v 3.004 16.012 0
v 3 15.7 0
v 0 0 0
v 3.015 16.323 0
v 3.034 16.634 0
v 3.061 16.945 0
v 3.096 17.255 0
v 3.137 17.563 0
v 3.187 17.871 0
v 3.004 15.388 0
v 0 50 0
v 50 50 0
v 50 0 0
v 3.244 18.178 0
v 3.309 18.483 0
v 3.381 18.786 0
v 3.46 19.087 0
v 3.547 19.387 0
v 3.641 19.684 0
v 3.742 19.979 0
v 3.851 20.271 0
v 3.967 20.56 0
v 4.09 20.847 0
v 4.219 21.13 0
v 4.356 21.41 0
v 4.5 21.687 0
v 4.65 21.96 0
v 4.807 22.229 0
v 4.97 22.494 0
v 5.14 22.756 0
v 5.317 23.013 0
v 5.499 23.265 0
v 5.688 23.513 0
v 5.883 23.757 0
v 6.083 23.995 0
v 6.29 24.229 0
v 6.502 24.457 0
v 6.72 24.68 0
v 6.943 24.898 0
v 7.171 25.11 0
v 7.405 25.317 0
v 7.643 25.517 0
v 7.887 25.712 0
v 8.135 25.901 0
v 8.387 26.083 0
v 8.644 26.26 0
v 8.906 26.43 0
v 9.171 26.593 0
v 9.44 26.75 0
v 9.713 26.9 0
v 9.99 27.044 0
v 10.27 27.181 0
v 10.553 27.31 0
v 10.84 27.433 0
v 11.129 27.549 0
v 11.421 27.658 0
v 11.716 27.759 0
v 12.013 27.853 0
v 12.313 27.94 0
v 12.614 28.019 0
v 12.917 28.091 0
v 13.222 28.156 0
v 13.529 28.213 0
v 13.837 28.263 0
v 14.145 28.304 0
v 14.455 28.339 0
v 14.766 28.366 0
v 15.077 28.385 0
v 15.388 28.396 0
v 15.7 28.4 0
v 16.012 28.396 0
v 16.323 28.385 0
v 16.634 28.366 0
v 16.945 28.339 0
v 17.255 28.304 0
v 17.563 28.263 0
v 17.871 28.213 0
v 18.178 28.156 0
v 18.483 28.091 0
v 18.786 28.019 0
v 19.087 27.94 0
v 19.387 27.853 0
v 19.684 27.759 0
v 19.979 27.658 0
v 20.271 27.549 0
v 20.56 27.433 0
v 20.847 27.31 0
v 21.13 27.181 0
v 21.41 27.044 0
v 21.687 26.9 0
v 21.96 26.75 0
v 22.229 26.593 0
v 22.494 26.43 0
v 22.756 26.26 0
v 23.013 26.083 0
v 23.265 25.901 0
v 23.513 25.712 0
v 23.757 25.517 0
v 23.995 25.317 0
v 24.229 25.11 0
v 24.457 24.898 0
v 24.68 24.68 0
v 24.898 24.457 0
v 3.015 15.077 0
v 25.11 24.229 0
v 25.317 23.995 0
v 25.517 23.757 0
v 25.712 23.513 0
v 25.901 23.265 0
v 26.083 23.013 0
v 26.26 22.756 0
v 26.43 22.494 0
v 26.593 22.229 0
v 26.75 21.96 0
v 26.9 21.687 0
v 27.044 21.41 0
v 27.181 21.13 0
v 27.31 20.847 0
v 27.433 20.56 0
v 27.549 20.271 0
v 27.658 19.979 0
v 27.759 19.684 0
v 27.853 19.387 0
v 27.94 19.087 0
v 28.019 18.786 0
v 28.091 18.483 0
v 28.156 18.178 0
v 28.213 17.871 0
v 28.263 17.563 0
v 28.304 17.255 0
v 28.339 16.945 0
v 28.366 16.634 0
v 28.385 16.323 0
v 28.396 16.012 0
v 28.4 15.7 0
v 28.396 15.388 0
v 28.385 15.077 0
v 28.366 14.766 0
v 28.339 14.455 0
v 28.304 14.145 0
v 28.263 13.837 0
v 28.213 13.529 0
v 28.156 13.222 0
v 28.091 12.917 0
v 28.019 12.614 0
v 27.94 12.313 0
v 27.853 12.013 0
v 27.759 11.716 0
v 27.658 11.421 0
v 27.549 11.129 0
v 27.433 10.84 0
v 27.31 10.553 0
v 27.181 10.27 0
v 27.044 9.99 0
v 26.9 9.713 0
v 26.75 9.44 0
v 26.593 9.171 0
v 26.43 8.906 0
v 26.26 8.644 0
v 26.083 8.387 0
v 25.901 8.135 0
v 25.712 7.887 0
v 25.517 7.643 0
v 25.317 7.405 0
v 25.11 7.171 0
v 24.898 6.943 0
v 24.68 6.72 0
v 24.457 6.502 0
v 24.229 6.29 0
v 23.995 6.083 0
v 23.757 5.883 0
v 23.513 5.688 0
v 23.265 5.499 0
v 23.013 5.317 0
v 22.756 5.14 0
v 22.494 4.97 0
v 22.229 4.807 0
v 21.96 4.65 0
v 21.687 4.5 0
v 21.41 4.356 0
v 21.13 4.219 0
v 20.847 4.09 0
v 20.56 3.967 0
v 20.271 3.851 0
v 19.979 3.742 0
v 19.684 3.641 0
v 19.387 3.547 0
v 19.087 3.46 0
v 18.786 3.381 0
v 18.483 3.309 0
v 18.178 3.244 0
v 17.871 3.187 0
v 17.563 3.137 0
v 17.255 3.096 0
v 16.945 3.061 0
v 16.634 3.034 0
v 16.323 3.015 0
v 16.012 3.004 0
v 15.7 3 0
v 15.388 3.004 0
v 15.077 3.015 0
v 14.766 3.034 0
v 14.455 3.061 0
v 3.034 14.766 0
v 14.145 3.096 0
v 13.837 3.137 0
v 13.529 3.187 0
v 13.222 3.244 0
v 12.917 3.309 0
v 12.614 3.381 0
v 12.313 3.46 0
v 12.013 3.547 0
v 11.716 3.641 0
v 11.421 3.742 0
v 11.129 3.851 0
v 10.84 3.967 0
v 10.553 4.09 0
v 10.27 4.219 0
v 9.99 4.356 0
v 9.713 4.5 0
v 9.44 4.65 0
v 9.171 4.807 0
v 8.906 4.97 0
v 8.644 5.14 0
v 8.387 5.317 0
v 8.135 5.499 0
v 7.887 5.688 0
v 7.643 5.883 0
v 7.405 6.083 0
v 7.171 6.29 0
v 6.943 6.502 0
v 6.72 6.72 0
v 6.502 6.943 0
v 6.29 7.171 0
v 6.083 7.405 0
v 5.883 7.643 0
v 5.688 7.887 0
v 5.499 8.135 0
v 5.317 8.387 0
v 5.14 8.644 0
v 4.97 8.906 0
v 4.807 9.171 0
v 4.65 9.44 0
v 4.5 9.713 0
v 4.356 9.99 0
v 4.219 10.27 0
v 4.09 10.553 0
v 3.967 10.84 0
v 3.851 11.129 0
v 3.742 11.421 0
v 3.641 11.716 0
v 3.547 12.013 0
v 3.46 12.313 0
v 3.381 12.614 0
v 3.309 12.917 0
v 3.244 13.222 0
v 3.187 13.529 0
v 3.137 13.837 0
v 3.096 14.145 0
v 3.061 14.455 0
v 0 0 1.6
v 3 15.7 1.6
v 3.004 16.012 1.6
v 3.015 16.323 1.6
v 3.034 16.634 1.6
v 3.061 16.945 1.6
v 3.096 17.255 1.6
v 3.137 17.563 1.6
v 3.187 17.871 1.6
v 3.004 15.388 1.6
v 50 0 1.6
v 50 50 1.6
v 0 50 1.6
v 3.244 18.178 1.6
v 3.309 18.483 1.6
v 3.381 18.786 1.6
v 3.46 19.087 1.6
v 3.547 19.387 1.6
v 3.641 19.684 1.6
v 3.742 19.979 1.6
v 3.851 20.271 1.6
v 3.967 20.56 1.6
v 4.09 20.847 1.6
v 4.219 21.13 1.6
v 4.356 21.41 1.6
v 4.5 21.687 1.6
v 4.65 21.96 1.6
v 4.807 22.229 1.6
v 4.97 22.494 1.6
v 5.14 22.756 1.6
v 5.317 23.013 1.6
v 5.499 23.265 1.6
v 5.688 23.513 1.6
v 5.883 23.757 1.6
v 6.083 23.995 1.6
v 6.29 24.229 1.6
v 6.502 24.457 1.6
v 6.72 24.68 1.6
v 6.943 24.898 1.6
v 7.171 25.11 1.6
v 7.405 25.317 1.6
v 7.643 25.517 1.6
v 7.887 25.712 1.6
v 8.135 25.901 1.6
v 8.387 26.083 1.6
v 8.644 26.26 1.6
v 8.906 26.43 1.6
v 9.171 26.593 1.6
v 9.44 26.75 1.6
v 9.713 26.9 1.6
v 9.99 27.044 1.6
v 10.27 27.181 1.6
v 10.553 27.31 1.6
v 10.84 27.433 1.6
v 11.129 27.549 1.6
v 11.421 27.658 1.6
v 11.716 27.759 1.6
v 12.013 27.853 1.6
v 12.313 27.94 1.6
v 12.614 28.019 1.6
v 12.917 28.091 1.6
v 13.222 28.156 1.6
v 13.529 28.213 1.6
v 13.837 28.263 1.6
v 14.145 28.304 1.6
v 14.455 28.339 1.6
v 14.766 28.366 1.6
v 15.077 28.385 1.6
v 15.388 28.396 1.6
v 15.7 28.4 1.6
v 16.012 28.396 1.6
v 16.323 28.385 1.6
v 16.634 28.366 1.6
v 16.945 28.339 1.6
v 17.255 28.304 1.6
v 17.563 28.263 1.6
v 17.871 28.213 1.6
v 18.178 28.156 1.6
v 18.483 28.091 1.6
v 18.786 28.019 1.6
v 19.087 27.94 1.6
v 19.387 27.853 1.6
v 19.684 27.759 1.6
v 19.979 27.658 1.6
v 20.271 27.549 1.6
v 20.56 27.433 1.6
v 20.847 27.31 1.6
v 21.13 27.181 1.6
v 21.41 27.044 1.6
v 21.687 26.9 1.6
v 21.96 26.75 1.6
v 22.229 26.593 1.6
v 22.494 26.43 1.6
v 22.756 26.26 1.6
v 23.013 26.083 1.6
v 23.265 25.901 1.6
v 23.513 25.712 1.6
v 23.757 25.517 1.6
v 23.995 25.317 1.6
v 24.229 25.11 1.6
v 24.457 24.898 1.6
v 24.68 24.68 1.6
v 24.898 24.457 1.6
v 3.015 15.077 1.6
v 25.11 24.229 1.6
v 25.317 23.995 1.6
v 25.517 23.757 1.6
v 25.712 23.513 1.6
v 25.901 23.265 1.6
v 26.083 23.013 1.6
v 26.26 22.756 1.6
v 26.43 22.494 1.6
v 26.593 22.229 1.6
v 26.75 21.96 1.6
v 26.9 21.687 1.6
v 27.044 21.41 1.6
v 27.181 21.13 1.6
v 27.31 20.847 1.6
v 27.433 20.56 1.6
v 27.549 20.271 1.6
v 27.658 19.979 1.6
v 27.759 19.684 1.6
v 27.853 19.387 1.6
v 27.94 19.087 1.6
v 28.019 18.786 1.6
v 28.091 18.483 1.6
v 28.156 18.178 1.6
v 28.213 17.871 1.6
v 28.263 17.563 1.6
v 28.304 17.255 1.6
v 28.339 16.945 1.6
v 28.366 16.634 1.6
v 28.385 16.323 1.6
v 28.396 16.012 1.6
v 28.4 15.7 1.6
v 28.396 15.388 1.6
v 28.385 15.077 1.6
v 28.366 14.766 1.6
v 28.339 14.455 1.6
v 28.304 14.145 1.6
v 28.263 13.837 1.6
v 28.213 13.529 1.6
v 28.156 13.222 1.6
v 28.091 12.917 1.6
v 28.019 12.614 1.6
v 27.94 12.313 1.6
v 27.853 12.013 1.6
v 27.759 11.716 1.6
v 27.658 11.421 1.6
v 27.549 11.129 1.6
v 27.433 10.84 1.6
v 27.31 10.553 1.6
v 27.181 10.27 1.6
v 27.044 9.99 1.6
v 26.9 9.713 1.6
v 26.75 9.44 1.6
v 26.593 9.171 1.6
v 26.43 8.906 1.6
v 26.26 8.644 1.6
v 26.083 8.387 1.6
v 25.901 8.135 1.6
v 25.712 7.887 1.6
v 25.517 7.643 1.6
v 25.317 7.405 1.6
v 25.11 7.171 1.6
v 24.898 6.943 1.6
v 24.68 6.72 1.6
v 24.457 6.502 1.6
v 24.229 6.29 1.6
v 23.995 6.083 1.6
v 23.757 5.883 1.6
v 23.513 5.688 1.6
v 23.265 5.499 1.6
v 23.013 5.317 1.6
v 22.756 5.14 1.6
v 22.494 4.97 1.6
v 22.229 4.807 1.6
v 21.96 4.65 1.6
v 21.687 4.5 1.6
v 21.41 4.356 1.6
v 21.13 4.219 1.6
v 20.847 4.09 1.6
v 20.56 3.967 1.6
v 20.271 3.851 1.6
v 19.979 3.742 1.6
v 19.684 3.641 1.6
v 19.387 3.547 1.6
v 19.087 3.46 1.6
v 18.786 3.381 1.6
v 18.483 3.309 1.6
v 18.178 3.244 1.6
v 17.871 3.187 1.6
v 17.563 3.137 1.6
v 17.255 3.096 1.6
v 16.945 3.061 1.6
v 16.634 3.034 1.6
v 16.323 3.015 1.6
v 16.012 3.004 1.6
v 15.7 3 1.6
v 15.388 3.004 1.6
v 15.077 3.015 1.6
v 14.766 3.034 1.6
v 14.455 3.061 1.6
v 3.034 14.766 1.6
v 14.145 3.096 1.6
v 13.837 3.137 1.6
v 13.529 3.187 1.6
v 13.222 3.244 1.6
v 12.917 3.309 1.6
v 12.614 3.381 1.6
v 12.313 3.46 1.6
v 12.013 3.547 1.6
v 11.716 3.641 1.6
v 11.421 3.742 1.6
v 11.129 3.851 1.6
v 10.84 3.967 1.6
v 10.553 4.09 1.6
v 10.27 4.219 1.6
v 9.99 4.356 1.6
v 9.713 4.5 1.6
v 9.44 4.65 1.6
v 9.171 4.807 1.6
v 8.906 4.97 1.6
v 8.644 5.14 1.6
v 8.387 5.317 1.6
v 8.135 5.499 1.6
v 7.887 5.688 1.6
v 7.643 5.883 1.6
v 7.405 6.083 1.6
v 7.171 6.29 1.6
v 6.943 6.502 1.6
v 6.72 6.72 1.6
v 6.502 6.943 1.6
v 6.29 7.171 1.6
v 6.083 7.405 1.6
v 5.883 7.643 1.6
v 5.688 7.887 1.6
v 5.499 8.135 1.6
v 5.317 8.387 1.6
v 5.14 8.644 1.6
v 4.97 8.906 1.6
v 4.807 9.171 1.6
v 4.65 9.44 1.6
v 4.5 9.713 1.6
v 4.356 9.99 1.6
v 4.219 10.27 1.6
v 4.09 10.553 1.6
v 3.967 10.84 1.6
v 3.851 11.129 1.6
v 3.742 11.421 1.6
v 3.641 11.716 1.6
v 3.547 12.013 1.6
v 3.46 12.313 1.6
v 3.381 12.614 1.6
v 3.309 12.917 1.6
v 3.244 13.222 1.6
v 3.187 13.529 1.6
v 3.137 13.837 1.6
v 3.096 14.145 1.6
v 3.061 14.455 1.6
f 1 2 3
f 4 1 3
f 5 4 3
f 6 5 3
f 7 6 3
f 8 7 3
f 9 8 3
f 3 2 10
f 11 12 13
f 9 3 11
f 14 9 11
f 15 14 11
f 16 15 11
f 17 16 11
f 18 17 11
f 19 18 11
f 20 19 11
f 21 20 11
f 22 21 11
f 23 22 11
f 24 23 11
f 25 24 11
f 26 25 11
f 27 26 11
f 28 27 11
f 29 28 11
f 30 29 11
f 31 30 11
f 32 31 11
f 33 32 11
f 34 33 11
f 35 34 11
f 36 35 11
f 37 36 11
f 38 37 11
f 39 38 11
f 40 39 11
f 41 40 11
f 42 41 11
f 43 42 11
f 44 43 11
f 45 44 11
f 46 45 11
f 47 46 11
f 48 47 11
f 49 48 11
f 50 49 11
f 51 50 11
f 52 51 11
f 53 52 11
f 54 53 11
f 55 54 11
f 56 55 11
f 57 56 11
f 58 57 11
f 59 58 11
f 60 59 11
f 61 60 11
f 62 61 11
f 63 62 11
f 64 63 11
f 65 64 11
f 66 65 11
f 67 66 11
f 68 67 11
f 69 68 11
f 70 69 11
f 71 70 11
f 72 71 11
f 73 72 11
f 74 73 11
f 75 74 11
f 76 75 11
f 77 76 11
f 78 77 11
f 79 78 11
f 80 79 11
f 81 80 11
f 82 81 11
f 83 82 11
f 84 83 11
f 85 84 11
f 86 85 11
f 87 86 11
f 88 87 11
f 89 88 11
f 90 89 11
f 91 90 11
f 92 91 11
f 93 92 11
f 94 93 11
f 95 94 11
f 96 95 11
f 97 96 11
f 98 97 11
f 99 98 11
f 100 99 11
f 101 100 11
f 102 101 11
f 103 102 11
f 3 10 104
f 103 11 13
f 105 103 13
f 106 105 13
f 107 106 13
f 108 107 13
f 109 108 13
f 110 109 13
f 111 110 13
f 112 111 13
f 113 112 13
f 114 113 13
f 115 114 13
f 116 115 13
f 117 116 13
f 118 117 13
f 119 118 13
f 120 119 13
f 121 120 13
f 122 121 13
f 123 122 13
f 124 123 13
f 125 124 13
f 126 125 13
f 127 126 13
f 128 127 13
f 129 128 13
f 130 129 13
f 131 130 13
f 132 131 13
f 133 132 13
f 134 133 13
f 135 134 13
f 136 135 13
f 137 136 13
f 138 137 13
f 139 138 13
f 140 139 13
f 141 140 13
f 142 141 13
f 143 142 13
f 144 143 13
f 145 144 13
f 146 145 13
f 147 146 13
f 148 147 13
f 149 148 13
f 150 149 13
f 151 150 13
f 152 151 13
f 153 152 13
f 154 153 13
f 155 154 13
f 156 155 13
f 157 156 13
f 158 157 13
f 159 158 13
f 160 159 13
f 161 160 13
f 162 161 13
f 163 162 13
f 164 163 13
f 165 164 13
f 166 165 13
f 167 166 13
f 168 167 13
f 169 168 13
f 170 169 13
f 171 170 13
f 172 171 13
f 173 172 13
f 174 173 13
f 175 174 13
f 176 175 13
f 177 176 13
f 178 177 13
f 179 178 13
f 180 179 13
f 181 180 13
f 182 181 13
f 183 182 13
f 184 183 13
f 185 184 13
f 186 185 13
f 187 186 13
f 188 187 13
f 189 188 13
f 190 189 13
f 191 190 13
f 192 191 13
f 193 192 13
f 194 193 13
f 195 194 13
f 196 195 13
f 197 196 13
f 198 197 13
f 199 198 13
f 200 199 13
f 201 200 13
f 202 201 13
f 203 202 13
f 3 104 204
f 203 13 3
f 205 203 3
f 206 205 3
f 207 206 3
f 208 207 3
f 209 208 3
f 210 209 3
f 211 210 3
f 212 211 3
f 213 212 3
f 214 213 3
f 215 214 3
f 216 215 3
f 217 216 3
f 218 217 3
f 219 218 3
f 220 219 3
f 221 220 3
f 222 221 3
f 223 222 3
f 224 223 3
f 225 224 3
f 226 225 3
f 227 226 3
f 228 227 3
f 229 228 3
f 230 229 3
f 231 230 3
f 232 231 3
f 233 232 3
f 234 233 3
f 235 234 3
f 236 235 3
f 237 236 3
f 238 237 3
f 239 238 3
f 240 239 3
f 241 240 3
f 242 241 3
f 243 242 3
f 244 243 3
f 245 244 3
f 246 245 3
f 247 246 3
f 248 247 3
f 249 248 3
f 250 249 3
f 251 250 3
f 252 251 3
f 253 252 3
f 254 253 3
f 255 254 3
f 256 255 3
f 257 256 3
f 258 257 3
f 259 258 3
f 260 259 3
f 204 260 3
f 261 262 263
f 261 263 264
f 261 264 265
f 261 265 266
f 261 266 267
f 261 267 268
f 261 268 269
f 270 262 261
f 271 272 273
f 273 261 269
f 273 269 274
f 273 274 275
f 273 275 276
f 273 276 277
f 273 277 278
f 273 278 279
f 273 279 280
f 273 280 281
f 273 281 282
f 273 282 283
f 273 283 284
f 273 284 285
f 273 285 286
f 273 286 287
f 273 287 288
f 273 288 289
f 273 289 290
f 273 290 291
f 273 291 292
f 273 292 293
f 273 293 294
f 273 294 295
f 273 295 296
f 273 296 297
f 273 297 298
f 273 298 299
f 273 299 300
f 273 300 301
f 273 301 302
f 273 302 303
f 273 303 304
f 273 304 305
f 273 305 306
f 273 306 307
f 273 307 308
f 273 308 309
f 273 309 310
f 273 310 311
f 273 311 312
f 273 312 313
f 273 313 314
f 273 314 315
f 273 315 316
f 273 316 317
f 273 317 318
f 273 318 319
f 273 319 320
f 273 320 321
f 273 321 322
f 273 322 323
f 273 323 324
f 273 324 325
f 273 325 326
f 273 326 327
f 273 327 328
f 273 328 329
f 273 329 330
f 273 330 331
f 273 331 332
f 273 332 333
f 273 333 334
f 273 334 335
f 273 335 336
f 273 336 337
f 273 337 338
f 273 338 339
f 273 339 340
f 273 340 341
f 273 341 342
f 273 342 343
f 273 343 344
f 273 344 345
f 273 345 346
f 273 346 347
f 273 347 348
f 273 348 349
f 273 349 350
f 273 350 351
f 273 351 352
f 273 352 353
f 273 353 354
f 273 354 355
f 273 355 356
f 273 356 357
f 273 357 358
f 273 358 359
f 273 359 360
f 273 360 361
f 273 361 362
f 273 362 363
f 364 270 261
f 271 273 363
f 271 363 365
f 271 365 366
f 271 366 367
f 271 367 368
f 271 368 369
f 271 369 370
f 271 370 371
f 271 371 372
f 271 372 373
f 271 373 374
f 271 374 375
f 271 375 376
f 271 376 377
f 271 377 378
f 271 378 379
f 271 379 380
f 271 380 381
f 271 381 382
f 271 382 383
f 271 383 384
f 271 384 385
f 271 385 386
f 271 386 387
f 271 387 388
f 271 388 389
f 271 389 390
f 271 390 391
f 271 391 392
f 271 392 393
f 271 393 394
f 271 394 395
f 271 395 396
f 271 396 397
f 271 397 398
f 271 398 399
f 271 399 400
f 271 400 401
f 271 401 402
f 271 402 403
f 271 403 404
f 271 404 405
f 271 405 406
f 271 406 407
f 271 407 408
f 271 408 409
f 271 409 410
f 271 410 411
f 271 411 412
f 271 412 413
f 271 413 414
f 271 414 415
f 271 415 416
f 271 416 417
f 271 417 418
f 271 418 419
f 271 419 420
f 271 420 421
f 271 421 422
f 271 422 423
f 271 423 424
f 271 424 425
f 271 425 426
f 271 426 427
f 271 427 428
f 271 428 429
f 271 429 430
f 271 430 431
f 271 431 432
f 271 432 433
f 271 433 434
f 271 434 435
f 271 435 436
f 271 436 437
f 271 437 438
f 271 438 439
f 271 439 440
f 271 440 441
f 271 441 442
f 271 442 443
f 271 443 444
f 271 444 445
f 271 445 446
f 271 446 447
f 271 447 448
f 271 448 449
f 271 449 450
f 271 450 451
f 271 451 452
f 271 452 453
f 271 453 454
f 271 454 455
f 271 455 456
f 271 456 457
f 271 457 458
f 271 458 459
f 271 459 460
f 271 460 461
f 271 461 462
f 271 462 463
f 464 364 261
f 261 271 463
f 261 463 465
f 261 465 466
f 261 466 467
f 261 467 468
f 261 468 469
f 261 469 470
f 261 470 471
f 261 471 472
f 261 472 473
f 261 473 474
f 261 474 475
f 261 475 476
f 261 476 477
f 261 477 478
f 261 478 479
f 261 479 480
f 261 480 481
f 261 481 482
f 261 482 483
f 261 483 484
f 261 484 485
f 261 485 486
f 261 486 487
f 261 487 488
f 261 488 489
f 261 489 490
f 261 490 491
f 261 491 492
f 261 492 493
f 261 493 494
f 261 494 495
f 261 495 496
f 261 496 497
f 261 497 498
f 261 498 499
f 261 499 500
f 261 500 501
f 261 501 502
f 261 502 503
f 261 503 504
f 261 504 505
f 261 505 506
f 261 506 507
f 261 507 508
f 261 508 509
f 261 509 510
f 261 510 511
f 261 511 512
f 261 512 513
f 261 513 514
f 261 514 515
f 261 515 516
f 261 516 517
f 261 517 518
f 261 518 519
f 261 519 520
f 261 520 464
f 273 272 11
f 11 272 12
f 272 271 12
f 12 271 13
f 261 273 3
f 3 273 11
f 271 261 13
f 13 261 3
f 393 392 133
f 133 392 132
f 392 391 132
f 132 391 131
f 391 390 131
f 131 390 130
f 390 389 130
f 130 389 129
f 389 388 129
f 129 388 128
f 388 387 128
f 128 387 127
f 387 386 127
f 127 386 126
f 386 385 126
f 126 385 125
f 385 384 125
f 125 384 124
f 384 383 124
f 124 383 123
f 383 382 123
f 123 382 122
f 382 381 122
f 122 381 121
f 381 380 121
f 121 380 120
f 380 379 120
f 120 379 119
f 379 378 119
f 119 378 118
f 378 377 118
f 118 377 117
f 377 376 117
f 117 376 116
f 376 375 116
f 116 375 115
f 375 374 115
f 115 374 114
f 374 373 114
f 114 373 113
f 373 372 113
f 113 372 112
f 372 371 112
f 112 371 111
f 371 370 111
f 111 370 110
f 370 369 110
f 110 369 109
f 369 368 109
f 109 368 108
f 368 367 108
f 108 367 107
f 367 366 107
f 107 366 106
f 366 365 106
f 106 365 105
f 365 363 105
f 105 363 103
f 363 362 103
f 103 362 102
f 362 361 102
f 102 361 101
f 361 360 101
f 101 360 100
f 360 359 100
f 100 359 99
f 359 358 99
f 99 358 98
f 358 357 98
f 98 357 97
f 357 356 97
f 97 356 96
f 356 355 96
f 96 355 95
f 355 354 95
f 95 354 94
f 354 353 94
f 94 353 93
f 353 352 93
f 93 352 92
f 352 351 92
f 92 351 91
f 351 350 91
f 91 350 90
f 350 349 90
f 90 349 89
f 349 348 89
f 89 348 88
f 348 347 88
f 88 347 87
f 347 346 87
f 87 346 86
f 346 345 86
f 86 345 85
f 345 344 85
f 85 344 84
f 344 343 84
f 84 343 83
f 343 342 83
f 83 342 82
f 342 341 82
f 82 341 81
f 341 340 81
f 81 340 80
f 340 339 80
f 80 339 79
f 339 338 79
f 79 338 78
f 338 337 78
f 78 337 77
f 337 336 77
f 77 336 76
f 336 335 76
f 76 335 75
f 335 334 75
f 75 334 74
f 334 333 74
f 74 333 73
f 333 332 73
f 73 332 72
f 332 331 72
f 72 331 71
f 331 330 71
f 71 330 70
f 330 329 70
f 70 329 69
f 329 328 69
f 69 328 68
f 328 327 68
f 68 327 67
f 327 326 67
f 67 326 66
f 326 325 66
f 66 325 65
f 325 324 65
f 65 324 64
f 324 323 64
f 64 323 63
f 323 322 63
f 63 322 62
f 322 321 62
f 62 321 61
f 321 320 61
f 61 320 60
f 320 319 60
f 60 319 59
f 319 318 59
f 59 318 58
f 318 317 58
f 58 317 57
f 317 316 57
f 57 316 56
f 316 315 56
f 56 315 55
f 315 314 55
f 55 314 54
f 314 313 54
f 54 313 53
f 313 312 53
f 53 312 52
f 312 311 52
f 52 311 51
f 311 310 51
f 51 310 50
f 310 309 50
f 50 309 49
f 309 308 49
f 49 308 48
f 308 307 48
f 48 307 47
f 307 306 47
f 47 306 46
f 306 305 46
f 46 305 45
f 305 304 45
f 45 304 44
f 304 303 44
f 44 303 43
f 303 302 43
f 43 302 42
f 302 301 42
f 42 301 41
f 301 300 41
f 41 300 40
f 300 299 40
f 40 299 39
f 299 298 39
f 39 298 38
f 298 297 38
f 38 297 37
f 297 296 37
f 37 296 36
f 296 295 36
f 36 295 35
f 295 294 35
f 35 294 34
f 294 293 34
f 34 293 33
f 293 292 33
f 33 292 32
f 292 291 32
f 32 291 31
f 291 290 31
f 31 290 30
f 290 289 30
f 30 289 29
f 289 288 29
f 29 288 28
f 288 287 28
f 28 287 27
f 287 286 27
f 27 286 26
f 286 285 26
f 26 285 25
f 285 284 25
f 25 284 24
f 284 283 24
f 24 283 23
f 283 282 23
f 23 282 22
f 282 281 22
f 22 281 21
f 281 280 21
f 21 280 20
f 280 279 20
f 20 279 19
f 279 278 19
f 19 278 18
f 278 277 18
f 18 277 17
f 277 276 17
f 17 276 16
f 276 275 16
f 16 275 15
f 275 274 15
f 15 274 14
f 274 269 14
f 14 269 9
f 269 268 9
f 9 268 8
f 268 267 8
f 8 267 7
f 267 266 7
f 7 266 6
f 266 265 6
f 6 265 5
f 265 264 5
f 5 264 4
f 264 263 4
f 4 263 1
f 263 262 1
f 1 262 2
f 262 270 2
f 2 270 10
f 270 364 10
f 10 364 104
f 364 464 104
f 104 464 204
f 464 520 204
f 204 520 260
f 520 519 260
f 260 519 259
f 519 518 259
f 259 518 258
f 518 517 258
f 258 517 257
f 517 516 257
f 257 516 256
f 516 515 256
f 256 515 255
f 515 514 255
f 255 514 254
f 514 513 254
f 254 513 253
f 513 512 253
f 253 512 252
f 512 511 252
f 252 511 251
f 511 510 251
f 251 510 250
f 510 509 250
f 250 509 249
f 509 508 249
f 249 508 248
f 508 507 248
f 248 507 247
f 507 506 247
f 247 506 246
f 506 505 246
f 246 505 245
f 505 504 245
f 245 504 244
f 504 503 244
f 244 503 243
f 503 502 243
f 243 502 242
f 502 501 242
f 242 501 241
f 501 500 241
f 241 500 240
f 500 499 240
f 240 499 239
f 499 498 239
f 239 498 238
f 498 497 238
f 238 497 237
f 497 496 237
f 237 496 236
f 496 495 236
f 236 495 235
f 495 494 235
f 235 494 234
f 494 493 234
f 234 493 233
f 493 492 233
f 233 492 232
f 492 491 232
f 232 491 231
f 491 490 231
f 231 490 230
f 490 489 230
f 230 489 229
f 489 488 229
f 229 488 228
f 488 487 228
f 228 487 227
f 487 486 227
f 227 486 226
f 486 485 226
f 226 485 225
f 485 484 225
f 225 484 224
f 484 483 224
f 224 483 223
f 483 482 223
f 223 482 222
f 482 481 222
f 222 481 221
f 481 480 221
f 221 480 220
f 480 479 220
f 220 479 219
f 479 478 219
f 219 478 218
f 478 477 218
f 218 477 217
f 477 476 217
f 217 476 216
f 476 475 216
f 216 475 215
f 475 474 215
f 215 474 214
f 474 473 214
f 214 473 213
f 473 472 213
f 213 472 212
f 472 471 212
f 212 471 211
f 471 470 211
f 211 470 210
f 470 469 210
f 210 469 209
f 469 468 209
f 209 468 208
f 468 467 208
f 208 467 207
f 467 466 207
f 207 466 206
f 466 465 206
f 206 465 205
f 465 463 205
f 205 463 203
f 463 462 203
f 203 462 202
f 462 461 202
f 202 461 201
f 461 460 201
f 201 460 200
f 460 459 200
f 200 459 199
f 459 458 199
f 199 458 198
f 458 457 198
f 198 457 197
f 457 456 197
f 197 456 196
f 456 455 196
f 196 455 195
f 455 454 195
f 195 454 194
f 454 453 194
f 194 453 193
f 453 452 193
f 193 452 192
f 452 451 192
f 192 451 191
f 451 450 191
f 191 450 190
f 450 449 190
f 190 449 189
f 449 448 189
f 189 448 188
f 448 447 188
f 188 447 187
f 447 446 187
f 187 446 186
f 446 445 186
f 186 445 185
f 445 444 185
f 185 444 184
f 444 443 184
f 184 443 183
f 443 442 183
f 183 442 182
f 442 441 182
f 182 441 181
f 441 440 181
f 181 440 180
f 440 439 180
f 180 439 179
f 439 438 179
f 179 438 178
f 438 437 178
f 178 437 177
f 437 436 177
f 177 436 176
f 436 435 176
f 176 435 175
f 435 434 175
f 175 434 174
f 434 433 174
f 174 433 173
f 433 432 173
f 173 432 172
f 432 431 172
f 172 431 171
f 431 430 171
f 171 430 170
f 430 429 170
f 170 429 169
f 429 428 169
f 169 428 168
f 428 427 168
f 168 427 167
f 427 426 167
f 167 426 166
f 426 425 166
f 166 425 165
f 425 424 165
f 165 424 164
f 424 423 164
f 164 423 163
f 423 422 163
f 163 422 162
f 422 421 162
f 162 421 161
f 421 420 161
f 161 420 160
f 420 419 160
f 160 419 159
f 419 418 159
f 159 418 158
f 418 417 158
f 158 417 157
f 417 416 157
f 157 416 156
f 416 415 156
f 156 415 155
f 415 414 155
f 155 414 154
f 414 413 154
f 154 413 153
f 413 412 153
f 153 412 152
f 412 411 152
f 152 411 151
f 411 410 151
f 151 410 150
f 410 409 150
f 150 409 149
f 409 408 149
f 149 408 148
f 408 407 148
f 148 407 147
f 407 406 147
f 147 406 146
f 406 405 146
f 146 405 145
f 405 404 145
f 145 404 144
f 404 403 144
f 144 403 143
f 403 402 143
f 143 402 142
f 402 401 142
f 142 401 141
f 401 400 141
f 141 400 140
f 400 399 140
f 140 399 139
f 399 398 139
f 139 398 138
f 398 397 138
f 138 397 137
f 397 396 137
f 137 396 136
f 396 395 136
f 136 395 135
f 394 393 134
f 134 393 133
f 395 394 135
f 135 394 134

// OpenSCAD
// RND-1: 1 in circle (shape punch, realisation punched) NOMINAL size, measure before use
// hole: circle {"d": 25.4}; inscribed 25.398 mm; 1 holes; open area 0.262; spec hash 0ca6a887921b5b5b
plate = 50.0; thickness = 1.6;
hole = [[12.7000, 0.0000], [12.6962, -0.3117], [12.6847, -0.6232], [12.6656, -0.9343], [12.6388, -1.2448], [12.6045, -1.5546], [12.5625, -1.8635], [12.5130, -2.1712], [12.4560, -2.4776], [12.3914, -2.7826], [12.3194, -3.0858], [12.2400, -3.3873], [12.1531, -3.6866], [12.0590, -3.9838], [11.9576, -4.2785], [11.8490, -4.5707], [11.7333, -4.8601], [11.6105, -5.1466], [11.4807, -5.4299], [11.3439, -5.7101], [11.2004, -5.9867], [11.0501, -6.2598], [10.8932, -6.5291], [10.7296, -6.7945], [10.5597, -7.0557], [10.3833, -7.3128], [10.2007, -7.5654], [10.0120, -7.8134], [9.8172, -8.0568], [9.6166, -8.2953], [9.4101, -8.5288], [9.1979, -8.7572], [8.9803, -8.9803], [8.7572, -9.1979], [8.5288, -9.4101], [8.2953, -9.6166], [8.0568, -9.8172], [7.8134, -10.0120], [7.5654, -10.2007], [7.3128, -10.3833], [7.0557, -10.5597], [6.7945, -10.7296], [6.5291, -10.8932], [6.2598, -11.0501], [5.9867, -11.2004], [5.7101, -11.3439], [5.4299, -11.4807], [5.1466, -11.6105], [4.8601, -11.7333], [4.5707, -11.8490], [4.2785, -11.9576], [3.9838, -12.0590], [3.6866, -12.1531], [3.3873, -12.2400], [3.0858, -12.3194], [2.7826, -12.3914], [2.4776, -12.4560], [2.1712, -12.5130], [1.8635, -12.5625], [1.5546, -12.6045], [1.2448, -12.6388], [0.9343, -12.6656], [0.6232, -12.6847], [0.3117, -12.6962], [0.0000, -12.7000], [-0.3117, -12.6962], [-0.6232, -12.6847], [-0.9343, -12.6656], [-1.2448, -12.6388], [-1.5546, -12.6045], [-1.8635, -12.5625], [-2.1712, -12.5130], [-2.4776, -12.4560], [-2.7826, -12.3914], [-3.0858, -12.3194], [-3.3873, -12.2400], [-3.6866, -12.1531], [-3.9838, -12.0590], [-4.2785, -11.9576], [-4.5707, -11.8490], [-4.8601, -11.7333], [-5.1466, -11.6105], [-5.4299, -11.4807], [-5.7101, -11.3439], [-5.9867, -11.2004], [-6.2598, -11.0501], [-6.5291, -10.8932], [-6.7945, -10.7296], [-7.0557, -10.5597], [-7.3128, -10.3833], [-7.5654, -10.2007], [-7.8134, -10.0120], [-8.0568, -9.8172], [-8.2953, -9.6166], [-8.5288, -9.4101], [-8.7572, -9.1979], [-8.9803, -8.9803], [-9.1979, -8.7572], [-9.4101, -8.5288], [-9.6166, -8.2953], [-9.8172, -8.0568], [-10.0120, -7.8134], [-10.2007, -7.5654], [-10.3833, -7.3128], [-10.5597, -7.0557], [-10.7296, -6.7945], [-10.8932, -6.5291], [-11.0501, -6.2598], [-11.2004, -5.9867], [-11.3439, -5.7101], [-11.4807, -5.4299], [-11.6105, -5.1466], [-11.7333, -4.8601], [-11.8490, -4.5707], [-11.9576, -4.2785], [-12.0590, -3.9838], [-12.1531, -3.6866], [-12.2400, -3.3873], [-12.3194, -3.0858], [-12.3914, -2.7826], [-12.4560, -2.4776], [-12.5130, -2.1712], [-12.5625, -1.8635], [-12.6045, -1.5546], [-12.6388, -1.2448], [-12.6656, -0.9343], [-12.6847, -0.6232], [-12.6962, -0.3117], [-12.7000, 0.0000], [-12.6962, 0.3117], [-12.6847, 0.6232], [-12.6656, 0.9343], [-12.6388, 1.2448], [-12.6045, 1.5546], [-12.5625, 1.8635], [-12.5130, 2.1712], [-12.4560, 2.4776], [-12.3914, 2.7826], [-12.3194, 3.0858], [-12.2400, 3.3873], [-12.1531, 3.6866], [-12.0590, 3.9838], [-11.9576, 4.2785], [-11.8490, 4.5707], [-11.7333, 4.8601], [-11.6105, 5.1466], [-11.4807, 5.4299], [-11.3439, 5.7101], [-11.2004, 5.9867], [-11.0501, 6.2598], [-10.8932, 6.5291], [-10.7296, 6.7945], [-10.5597, 7.0557], [-10.3833, 7.3128], [-10.2007, 7.5654], [-10.0120, 7.8134], [-9.8172, 8.0568], [-9.6166, 8.2953], [-9.4101, 8.5288], [-9.1979, 8.7572], [-8.9803, 8.9803], [-8.7572, 9.1979], [-8.5288, 9.4101], [-8.2953, 9.6166], [-8.0568, 9.8172], [-7.8134, 10.0120], [-7.5654, 10.2007], [-7.3128, 10.3833], [-7.0557, 10.5597], [-6.7945, 10.7296], [-6.5291, 10.8932], [-6.2598, 11.0501], [-5.9867, 11.2004], [-5.7101, 11.3439], [-5.4299, 11.4807], [-5.1466, 11.6105], [-4.8601, 11.7333], [-4.5707, 11.8490], [-4.2785, 11.9576], [-3.9838, 12.0590], [-3.6866, 12.1531], [-3.3873, 12.2400], [-3.0858, 12.3194], [-2.7826, 12.3914], [-2.4776, 12.4560], [-2.1712, 12.5130], [-1.8635, 12.5625], [-1.5546, 12.6045], [-1.2448, 12.6388], [-0.9343, 12.6656], [-0.6232, 12.6847], [-0.3117, 12.6962], [0.0000, 12.7000], [0.3117, 12.6962], [0.6232, 12.6847], [0.9343, 12.6656], [1.2448, 12.6388], [1.5546, 12.6045], [1.8635, 12.5625], [2.1712, 12.5130], [2.4776, 12.4560], [2.7826, 12.3914], [3.0858, 12.3194], [3.3873, 12.2400], [3.6866, 12.1531], [3.9838, 12.0590], [4.2785, 11.9576], [4.5707, 11.8490], [4.8601, 11.7333], [5.1466, 11.6105], [5.4299, 11.4807], [5.7101, 11.3439], [5.9867, 11.2004], [6.2598, 11.0501], [6.5291, 10.8932], [6.7945, 10.7296], [7.0557, 10.5597], [7.3128, 10.3833], [7.5654, 10.2007], [7.8134, 10.0120], [8.0568, 9.8172], [8.2953, 9.6166], [8.5288, 9.4101], [8.7572, 9.1979], [8.9803, 8.9803], [9.1979, 8.7572], [9.4101, 8.5288], [9.6166, 8.2953], [9.8172, 8.0568], [10.0120, 7.8134], [10.2007, 7.5654], [10.3833, 7.3128], [10.5597, 7.0557], [10.7296, 6.7945], [10.8932, 6.5291], [11.0501, 6.2598], [11.2004, 5.9867], [11.3439, 5.7101], [11.4807, 5.4299], [11.6105, 5.1466], [11.7333, 4.8601], [11.8490, 4.5707], [11.9576, 4.2785], [12.0590, 3.9838], [12.1531, 3.6866], [12.2400, 3.3873], [12.3194, 3.0858], [12.3914, 2.7826], [12.4560, 2.4776], [12.5130, 2.1712], [12.5625, 1.8635], [12.6045, 1.5546], [12.6388, 1.2448], [12.6656, 0.9343], [12.6847, 0.6232], [12.6962, 0.3117]];
centres = [[15.7, 15.7]];
difference() {
  cube([plate, plate, thickness]);
  for (c = centres) translate([c[0], c[1], -1]) linear_extrude(thickness + 2) polygon(hole);
}
